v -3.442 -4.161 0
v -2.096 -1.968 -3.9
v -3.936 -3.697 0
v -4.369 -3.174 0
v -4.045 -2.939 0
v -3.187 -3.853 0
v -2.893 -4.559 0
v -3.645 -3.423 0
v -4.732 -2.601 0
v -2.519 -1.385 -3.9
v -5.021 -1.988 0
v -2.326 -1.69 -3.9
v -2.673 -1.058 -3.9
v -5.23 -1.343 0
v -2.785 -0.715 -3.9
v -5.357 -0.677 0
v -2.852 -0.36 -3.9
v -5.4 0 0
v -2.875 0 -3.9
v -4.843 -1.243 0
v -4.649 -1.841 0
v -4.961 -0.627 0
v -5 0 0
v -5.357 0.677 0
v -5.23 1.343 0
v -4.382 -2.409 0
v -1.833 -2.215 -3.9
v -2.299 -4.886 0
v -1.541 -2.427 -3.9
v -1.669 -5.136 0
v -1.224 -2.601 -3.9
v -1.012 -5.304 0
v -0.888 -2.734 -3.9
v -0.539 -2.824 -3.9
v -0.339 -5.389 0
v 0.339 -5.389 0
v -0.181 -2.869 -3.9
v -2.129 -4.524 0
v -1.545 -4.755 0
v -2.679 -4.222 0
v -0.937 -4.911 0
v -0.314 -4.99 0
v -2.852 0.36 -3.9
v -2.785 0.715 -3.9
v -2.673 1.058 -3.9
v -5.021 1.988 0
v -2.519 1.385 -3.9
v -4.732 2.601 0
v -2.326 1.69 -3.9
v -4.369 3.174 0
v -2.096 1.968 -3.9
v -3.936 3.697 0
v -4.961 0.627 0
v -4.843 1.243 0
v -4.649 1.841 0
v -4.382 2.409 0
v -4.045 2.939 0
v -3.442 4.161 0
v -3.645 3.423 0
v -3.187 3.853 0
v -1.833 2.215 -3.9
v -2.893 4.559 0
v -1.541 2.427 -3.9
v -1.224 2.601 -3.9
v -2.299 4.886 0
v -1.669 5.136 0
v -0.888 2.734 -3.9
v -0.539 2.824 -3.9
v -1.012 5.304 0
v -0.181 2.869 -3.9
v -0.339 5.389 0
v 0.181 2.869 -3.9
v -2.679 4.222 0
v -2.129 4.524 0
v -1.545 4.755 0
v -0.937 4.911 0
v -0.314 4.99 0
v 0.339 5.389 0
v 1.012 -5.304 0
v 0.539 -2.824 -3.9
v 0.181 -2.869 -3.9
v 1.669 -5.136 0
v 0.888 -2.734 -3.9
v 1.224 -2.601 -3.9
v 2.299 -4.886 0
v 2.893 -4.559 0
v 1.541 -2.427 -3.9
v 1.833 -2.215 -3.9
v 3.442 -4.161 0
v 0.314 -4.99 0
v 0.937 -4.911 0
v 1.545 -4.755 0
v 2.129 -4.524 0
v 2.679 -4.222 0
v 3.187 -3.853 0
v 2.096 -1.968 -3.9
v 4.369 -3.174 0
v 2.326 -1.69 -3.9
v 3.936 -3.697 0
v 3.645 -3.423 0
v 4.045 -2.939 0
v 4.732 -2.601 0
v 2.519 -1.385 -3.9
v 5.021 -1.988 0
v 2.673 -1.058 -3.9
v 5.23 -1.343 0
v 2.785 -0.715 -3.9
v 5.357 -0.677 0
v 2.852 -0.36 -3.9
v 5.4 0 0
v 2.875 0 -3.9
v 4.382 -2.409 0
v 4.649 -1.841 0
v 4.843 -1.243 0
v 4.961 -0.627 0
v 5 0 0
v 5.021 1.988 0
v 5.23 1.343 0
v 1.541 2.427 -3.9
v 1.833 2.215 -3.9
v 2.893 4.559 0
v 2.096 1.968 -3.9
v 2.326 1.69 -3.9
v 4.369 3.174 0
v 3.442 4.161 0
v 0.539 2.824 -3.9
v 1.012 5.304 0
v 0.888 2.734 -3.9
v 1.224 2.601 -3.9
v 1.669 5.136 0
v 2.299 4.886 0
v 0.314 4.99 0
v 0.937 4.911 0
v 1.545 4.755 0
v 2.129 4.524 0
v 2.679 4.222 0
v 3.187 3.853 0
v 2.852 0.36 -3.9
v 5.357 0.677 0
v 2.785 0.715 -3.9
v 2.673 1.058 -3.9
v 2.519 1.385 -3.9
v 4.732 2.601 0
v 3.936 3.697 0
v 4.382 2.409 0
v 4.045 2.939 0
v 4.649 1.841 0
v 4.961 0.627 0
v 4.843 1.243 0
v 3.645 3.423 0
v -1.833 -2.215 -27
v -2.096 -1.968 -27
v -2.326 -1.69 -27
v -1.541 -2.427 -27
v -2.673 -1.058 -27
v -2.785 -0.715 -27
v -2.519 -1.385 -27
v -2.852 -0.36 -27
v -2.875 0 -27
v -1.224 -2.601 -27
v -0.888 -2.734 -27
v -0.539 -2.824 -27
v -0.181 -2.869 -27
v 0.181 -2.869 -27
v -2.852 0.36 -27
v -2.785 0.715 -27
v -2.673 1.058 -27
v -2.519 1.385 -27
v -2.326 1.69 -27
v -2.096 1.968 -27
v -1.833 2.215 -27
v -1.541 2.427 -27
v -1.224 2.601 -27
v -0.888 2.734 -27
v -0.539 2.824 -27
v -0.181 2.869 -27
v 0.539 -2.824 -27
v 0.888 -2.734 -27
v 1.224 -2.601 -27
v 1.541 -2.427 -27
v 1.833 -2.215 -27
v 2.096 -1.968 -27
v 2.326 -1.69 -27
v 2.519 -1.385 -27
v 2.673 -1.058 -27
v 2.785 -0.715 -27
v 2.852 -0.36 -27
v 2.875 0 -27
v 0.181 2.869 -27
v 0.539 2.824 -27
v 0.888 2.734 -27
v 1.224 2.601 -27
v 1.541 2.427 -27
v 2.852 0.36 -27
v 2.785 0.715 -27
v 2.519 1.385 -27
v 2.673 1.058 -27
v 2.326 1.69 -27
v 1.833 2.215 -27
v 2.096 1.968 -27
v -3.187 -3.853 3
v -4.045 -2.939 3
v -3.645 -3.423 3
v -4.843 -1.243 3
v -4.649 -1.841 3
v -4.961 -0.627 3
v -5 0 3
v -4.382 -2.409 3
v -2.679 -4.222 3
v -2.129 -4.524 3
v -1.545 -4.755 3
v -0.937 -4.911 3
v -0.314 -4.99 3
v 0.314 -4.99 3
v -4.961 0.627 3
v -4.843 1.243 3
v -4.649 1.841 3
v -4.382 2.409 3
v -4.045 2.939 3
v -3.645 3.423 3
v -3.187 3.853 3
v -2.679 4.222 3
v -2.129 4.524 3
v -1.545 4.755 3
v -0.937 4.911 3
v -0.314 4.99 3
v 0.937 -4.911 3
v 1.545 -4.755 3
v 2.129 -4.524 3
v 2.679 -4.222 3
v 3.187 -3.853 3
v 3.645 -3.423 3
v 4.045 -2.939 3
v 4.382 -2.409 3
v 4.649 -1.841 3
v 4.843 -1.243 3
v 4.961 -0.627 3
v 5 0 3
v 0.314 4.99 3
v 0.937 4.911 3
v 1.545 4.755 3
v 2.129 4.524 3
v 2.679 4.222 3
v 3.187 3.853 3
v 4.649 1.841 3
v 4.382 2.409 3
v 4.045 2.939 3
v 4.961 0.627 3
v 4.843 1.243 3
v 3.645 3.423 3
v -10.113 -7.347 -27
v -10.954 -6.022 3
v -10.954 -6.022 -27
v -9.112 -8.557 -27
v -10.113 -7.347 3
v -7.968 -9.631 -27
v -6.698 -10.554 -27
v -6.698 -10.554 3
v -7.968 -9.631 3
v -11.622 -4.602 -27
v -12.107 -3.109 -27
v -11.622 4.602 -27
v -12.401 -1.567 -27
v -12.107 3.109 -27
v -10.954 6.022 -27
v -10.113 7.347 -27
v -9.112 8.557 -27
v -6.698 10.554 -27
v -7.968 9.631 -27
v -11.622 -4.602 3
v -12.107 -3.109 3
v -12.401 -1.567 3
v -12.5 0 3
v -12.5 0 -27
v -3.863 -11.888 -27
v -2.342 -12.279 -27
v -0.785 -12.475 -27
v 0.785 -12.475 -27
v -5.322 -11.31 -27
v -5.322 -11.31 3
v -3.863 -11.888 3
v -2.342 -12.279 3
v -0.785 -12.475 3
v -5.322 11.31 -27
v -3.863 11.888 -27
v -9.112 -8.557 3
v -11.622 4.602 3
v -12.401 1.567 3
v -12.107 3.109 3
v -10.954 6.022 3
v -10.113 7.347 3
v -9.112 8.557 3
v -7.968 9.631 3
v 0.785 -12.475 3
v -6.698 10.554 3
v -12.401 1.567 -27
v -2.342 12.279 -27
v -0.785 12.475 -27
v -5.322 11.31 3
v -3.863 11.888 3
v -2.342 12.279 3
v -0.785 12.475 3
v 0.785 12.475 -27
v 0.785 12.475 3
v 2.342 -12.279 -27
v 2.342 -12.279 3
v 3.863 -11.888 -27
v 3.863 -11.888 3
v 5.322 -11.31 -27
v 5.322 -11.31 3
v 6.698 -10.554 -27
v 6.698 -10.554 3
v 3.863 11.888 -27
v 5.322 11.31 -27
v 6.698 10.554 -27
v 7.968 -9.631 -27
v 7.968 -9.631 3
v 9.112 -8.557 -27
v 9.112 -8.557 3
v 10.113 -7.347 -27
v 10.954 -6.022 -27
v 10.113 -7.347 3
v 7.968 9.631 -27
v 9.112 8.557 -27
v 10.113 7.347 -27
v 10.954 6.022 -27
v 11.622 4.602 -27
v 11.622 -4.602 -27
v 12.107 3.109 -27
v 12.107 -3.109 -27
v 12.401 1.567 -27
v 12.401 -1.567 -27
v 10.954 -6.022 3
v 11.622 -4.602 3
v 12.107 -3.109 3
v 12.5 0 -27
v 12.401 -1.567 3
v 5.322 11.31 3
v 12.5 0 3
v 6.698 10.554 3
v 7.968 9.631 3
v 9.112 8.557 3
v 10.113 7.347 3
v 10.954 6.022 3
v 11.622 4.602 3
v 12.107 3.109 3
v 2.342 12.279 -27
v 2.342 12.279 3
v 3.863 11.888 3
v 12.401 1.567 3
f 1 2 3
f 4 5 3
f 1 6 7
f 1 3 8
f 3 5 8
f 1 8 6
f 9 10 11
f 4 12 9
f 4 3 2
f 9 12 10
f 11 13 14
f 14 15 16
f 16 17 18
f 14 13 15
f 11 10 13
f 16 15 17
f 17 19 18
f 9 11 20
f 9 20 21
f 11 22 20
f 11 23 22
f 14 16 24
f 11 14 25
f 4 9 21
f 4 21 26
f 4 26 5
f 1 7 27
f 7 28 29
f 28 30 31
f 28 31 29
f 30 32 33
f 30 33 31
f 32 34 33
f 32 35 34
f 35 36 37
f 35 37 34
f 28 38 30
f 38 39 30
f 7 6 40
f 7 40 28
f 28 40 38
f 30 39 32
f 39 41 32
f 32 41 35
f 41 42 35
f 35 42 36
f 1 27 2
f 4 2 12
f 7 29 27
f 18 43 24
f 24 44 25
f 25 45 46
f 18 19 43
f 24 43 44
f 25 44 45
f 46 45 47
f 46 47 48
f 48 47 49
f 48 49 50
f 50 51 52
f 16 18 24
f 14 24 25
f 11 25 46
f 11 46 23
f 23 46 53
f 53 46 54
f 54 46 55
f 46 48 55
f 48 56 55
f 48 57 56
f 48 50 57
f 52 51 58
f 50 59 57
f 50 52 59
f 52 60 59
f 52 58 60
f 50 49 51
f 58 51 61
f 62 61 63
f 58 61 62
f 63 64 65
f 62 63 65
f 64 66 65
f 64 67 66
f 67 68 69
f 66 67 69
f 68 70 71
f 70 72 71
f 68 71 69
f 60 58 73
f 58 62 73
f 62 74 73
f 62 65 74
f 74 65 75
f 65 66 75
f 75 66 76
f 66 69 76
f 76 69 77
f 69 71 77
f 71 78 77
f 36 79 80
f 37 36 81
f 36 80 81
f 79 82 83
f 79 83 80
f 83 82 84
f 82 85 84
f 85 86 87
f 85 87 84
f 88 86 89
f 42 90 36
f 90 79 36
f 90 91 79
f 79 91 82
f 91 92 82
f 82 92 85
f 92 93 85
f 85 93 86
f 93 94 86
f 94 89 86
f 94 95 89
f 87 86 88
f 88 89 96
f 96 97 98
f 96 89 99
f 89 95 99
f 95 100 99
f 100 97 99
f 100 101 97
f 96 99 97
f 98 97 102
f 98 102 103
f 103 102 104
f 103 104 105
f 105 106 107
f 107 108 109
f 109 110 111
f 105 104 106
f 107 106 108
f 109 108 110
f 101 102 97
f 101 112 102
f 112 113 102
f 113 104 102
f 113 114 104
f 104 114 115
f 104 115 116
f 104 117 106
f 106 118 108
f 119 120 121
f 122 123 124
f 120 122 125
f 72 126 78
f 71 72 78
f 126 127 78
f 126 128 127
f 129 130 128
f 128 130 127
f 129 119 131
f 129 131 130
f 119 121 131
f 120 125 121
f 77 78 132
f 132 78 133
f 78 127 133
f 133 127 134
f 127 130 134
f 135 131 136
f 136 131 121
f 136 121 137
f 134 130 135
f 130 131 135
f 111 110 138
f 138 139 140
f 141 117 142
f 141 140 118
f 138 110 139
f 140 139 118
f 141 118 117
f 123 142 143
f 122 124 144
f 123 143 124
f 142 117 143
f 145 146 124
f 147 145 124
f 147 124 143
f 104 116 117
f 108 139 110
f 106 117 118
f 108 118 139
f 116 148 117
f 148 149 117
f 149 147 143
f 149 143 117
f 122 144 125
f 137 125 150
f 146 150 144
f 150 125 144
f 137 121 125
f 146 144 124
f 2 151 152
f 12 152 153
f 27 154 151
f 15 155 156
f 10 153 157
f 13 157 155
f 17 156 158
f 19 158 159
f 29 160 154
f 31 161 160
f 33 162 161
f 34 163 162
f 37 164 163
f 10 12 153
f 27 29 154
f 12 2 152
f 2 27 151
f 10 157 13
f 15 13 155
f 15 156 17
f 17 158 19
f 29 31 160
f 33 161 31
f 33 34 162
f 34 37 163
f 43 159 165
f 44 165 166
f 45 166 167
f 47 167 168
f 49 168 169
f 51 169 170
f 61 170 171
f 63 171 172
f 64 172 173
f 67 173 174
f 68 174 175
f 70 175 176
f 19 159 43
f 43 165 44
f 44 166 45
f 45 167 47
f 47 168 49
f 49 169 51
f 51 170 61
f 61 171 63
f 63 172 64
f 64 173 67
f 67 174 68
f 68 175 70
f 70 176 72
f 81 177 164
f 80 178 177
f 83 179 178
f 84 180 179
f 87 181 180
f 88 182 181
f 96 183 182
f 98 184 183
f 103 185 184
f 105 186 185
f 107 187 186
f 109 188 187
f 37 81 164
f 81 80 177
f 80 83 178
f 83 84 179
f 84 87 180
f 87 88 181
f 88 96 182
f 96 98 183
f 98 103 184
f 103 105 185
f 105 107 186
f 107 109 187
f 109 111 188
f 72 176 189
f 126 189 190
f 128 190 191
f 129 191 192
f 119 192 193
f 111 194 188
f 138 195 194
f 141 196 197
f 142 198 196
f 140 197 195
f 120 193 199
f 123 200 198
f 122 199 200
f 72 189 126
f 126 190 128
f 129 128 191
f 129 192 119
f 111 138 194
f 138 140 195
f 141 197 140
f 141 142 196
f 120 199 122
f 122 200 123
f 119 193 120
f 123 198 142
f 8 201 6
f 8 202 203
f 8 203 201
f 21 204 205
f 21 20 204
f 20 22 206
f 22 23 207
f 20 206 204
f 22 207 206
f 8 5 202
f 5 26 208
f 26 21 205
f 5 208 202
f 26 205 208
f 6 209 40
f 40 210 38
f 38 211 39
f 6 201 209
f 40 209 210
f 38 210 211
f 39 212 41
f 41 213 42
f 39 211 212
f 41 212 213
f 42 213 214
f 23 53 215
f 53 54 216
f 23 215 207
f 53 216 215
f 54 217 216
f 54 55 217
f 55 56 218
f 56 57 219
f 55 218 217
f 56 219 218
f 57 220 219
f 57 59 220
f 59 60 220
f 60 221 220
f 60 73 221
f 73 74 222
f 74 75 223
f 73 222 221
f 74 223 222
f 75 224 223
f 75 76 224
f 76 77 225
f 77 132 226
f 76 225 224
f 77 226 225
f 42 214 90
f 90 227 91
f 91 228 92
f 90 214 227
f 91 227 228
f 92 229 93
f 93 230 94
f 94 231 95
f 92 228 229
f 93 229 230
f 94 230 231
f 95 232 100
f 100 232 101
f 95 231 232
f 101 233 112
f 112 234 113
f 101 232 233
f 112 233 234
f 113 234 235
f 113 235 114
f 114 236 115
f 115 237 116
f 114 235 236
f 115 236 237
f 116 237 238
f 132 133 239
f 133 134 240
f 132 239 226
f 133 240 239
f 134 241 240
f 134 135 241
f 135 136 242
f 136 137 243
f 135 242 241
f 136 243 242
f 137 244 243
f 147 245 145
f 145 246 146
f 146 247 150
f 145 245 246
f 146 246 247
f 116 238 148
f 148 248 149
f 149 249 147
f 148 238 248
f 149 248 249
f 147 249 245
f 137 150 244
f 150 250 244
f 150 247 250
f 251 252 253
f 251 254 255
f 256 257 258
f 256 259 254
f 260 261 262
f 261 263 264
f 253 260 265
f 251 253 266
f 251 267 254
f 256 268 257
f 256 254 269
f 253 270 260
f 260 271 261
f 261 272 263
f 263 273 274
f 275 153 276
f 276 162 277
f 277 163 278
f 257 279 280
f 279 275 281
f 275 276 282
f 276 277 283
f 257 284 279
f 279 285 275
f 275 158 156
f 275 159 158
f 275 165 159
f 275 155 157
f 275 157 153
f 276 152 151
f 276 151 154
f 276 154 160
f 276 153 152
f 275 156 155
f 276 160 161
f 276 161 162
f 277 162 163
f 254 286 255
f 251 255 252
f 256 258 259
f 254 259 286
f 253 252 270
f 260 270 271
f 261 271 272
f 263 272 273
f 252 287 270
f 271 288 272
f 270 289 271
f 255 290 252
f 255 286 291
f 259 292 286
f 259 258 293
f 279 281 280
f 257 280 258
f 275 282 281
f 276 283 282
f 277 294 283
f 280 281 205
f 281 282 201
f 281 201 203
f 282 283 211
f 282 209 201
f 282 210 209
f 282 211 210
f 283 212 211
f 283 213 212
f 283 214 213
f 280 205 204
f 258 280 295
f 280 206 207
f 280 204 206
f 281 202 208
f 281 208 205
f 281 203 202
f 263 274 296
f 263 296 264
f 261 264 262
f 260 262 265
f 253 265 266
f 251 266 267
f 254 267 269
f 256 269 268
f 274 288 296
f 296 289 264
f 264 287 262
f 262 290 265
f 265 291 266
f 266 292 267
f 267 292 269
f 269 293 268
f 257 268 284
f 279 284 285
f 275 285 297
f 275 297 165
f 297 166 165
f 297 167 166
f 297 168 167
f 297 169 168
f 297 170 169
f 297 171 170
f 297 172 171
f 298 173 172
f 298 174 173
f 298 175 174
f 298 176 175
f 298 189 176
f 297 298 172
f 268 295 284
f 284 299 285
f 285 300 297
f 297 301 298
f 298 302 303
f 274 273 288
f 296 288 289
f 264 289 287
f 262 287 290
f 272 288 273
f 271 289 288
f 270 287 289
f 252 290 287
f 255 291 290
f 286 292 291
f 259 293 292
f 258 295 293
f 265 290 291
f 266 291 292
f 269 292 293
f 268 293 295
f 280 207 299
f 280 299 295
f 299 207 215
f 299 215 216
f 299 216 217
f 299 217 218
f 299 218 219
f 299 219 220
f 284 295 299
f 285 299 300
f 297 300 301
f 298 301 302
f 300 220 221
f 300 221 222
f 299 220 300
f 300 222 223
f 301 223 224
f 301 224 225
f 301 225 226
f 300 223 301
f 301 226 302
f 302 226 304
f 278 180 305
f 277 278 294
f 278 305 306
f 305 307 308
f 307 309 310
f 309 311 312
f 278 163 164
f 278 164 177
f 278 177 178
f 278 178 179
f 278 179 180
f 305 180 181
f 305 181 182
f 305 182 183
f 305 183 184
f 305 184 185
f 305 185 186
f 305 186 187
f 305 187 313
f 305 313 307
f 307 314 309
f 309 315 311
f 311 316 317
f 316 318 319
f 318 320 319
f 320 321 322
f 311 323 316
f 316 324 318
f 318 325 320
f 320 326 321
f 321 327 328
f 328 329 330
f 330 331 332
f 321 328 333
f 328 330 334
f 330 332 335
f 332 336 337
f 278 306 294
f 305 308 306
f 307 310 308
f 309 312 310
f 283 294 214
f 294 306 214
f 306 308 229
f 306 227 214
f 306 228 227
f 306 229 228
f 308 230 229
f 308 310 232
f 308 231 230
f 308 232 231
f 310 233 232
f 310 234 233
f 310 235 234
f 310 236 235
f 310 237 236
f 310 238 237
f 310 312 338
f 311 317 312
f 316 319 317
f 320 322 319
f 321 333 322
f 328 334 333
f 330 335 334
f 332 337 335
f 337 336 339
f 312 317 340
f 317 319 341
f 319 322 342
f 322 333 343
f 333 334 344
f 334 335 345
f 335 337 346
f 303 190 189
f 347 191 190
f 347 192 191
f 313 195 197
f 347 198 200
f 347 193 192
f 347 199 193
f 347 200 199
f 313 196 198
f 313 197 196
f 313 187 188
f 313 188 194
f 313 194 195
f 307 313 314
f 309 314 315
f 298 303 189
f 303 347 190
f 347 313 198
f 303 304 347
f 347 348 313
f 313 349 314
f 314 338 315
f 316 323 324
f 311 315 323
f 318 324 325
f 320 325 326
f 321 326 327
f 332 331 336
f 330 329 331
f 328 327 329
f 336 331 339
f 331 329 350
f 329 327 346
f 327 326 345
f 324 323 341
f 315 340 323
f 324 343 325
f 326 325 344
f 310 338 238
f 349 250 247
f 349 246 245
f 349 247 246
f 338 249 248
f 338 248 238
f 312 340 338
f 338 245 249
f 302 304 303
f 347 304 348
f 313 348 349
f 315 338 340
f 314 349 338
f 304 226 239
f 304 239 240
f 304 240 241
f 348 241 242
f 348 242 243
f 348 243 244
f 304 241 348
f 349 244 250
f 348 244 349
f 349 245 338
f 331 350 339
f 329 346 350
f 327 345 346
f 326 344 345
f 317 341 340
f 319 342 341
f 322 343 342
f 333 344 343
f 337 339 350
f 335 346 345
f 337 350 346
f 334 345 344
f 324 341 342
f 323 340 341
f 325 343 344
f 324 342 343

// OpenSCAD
$fn = 50;

difference() {
	union() {
		translate(v = [0, 0, -27.0]) {
			cylinder(h = 30, r = 12.5);
		}
	}
	union() {
		translate(v = [0, 0, 0]) {
			rotate(a = [0, 0, 0]) {
				difference() {
					union() {
						translate(v = [0, 0, -30.0]) {
							cylinder(h = 30, r = 2.6);
						}
						translate(v = [0, 0, -3.9]) {
							cylinder(h = 3.9, r1 = 2.875, r2 = 5.4);
						}
						translate(v = [0, 0, -30.0]) {
							cylinder(h = 30, r = 2.875);
						}
						translate(v = [0, 0, -30.0]) {
							cylinder(h = 30, r = 2.6);
						}
					}
					union();
				}
			}
		}
		#cylinder(h = 3, r = 5.0);
	}
}
